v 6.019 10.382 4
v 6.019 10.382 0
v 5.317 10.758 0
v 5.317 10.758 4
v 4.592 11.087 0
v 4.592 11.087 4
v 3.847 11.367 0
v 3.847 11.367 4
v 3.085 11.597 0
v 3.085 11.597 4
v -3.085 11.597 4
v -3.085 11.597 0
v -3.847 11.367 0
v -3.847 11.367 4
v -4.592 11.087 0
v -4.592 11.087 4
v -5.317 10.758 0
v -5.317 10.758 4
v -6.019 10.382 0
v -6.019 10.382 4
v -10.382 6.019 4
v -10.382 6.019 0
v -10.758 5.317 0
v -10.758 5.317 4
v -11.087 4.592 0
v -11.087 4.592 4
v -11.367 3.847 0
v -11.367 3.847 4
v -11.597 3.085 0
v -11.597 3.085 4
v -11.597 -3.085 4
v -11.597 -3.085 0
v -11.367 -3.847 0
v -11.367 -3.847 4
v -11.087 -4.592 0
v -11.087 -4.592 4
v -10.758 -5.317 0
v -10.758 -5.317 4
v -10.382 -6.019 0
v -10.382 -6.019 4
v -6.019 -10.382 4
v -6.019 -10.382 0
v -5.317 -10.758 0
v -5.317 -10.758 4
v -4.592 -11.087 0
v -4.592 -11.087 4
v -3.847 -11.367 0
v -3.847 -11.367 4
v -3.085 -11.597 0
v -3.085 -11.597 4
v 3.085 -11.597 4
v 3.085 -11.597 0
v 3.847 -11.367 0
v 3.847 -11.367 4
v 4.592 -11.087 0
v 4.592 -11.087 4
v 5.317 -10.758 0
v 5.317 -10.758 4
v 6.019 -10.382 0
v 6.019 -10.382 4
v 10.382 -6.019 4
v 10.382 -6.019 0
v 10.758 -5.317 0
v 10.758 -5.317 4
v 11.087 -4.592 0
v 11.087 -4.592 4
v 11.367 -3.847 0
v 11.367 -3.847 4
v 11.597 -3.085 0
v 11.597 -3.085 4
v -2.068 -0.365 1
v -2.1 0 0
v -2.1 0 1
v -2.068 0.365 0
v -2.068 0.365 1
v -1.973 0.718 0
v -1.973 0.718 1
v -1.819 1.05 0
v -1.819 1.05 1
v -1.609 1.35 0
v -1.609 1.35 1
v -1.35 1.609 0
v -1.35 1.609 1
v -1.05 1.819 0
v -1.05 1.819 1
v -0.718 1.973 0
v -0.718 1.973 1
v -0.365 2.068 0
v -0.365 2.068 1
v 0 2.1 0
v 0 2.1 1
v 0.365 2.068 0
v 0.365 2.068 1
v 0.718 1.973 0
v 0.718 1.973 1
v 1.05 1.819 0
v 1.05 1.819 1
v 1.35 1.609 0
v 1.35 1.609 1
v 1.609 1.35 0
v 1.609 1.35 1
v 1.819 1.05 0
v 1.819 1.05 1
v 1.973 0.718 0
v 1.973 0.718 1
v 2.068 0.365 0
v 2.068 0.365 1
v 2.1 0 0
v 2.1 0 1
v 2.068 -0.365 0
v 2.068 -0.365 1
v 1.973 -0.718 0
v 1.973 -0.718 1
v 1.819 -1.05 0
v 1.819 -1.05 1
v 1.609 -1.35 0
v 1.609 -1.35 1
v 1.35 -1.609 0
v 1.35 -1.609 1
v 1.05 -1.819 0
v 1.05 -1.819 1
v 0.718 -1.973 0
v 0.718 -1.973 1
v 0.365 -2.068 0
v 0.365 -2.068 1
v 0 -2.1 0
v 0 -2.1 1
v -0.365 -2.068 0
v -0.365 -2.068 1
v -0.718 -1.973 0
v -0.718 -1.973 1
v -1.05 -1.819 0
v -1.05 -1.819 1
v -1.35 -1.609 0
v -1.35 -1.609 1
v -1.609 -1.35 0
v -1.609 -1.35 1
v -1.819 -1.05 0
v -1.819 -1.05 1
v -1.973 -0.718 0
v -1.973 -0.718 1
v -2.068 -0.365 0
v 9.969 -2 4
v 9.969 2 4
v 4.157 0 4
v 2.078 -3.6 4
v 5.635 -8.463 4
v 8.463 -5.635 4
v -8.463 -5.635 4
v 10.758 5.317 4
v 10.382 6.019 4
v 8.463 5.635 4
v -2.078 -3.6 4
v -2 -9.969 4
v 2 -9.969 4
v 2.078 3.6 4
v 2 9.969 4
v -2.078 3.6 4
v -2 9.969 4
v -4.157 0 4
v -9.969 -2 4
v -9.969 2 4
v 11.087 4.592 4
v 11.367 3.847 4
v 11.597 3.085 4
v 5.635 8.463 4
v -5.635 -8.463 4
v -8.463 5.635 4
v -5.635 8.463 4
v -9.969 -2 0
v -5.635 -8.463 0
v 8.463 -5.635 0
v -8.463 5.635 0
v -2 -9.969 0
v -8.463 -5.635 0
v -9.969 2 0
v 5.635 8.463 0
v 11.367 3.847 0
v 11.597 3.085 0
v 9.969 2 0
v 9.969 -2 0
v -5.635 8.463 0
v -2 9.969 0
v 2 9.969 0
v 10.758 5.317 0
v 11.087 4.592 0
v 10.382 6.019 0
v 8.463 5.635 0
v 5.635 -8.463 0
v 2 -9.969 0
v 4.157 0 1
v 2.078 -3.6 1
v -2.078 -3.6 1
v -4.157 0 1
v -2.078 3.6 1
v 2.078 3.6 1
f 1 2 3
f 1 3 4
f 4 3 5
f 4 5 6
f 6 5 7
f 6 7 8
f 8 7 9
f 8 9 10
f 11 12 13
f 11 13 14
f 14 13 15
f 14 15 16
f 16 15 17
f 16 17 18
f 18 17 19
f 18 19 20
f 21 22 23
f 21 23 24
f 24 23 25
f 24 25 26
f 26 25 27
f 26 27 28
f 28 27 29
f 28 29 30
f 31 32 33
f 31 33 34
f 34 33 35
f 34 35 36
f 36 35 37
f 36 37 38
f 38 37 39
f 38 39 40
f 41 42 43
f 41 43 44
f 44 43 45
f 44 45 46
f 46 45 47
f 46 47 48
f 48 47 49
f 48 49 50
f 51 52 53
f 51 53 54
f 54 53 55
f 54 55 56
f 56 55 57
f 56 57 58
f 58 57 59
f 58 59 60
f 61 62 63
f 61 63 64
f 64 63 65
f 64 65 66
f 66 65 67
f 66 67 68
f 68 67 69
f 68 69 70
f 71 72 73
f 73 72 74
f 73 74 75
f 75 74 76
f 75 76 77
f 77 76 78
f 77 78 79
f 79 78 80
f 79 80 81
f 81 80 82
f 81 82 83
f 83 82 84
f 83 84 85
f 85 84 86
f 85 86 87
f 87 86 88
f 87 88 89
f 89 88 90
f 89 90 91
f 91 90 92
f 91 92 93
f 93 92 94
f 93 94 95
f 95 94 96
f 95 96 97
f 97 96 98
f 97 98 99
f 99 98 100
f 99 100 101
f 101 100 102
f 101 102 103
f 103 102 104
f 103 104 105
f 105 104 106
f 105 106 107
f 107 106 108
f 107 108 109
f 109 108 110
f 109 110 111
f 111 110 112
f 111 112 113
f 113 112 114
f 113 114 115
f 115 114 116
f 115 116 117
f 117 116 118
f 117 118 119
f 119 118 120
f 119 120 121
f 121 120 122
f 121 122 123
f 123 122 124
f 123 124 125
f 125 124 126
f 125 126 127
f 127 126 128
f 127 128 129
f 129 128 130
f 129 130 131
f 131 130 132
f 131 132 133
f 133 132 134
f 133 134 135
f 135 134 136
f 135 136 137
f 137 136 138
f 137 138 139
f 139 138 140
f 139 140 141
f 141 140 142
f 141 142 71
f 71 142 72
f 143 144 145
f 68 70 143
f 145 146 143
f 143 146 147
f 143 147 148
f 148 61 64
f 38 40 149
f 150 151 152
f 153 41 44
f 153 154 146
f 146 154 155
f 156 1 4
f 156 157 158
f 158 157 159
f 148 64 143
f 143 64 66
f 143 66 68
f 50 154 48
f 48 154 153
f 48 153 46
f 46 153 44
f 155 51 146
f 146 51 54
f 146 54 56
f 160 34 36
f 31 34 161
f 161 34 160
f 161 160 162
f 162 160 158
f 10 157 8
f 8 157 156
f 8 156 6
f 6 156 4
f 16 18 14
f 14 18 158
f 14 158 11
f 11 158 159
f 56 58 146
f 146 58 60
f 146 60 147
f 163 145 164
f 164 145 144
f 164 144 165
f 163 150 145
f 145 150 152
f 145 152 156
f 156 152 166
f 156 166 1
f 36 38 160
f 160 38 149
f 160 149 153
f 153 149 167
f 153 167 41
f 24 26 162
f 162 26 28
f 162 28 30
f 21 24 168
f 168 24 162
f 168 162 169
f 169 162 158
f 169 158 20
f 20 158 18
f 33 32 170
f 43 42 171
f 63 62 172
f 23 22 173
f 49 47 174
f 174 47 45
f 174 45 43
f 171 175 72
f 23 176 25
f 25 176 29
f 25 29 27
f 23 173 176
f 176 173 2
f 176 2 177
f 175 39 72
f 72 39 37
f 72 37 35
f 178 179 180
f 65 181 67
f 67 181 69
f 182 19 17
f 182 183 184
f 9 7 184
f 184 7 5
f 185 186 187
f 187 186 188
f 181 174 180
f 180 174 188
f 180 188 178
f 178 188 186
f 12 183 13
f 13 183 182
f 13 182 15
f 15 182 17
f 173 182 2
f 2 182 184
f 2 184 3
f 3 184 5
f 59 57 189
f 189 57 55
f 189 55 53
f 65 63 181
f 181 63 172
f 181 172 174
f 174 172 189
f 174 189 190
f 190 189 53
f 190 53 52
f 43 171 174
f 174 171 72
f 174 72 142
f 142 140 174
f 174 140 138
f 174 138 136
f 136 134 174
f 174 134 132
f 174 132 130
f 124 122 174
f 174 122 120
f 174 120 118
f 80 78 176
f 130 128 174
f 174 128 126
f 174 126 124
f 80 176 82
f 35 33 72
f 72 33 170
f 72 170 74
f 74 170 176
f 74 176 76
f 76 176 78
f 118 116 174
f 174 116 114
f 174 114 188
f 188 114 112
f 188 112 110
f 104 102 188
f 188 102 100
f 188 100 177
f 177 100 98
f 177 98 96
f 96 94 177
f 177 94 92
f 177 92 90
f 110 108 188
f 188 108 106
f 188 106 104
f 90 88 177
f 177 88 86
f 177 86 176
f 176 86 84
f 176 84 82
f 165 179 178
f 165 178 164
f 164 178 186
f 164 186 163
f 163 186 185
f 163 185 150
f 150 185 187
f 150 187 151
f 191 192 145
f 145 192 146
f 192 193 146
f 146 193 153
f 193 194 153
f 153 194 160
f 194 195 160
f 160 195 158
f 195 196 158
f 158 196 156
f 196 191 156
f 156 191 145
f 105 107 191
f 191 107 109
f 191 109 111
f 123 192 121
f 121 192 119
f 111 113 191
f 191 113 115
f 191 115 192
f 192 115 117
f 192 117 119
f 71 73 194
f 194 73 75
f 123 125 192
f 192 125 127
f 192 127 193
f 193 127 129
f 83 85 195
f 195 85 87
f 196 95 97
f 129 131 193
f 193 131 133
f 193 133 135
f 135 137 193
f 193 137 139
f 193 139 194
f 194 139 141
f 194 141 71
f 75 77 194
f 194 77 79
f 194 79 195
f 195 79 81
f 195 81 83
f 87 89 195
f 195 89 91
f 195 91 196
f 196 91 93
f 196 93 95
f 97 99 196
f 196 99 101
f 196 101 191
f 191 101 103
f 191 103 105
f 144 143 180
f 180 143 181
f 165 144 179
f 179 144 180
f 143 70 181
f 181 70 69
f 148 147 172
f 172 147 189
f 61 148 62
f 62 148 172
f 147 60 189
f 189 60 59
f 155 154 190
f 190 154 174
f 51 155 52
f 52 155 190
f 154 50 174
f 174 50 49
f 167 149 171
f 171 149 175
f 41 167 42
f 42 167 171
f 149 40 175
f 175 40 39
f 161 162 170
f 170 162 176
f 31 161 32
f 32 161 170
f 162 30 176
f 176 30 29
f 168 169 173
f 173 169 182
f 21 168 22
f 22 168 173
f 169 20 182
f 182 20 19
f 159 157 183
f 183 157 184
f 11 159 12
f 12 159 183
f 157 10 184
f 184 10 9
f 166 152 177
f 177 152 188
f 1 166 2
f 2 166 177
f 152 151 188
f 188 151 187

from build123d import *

# Parameters (mm, degrees)
SKETCH1_R           = 12
SKETCH1_R_2         = 2.1
BOSS_EXTRUDE1_DEPTH = 4
CUT_EXTRUDE1_DEPTH  = 3
CUT_EXTRUDE2_DEPTH  = 4
CIRPATTERN1_COUNT   = 8


with BuildPart() as part:
    # Sketch1 → Boss-Extrude1 (new body)
    with BuildSketch(Plane.XY):
        Circle(SKETCH1_R)
        Circle(SKETCH1_R_2, mode=Mode.SUBTRACT)
    extrude(amount=BOSS_EXTRUDE1_DEPTH)

    # Sketch2 → Cut-Extrude1 (cut)
    with BuildSketch(Plane.XY.offset(4)):
        Polygon((4.156921938, 0), (2.078460969, 3.6), (-2.078460969, 3.6), (-4.156921938, 0), (-2.078460969, -3.6), (2.078460969, -3.6), align=None)
    extrude(amount=-CUT_EXTRUDE1_DEPTH, mode=Mode.SUBTRACT)

    # Sketch3 → Cut-Extrude2 (cut)
    with BuildSketch(Plane.XY.offset(4)):
        Polygon((9.968896423, 2), (12.968896423, 4), (12.968896423, -4), (9.968896423, -2), align=None)
    cut_extrude2 = extrude(amount=-CUT_EXTRUDE2_DEPTH, mode=Mode.SUBTRACT)

    # CirPattern1: Cut-Extrude2 ×8 about axis
    cirpattern1_axis = Axis((0, 0, 0), (0, 0, 1))
    for i in range(1, CIRPATTERN1_COUNT):
        add(cut_extrude2.rotate(cirpattern1_axis, i * 360 / CIRPATTERN1_COUNT), mode=Mode.SUBTRACT)


solid = part.part
